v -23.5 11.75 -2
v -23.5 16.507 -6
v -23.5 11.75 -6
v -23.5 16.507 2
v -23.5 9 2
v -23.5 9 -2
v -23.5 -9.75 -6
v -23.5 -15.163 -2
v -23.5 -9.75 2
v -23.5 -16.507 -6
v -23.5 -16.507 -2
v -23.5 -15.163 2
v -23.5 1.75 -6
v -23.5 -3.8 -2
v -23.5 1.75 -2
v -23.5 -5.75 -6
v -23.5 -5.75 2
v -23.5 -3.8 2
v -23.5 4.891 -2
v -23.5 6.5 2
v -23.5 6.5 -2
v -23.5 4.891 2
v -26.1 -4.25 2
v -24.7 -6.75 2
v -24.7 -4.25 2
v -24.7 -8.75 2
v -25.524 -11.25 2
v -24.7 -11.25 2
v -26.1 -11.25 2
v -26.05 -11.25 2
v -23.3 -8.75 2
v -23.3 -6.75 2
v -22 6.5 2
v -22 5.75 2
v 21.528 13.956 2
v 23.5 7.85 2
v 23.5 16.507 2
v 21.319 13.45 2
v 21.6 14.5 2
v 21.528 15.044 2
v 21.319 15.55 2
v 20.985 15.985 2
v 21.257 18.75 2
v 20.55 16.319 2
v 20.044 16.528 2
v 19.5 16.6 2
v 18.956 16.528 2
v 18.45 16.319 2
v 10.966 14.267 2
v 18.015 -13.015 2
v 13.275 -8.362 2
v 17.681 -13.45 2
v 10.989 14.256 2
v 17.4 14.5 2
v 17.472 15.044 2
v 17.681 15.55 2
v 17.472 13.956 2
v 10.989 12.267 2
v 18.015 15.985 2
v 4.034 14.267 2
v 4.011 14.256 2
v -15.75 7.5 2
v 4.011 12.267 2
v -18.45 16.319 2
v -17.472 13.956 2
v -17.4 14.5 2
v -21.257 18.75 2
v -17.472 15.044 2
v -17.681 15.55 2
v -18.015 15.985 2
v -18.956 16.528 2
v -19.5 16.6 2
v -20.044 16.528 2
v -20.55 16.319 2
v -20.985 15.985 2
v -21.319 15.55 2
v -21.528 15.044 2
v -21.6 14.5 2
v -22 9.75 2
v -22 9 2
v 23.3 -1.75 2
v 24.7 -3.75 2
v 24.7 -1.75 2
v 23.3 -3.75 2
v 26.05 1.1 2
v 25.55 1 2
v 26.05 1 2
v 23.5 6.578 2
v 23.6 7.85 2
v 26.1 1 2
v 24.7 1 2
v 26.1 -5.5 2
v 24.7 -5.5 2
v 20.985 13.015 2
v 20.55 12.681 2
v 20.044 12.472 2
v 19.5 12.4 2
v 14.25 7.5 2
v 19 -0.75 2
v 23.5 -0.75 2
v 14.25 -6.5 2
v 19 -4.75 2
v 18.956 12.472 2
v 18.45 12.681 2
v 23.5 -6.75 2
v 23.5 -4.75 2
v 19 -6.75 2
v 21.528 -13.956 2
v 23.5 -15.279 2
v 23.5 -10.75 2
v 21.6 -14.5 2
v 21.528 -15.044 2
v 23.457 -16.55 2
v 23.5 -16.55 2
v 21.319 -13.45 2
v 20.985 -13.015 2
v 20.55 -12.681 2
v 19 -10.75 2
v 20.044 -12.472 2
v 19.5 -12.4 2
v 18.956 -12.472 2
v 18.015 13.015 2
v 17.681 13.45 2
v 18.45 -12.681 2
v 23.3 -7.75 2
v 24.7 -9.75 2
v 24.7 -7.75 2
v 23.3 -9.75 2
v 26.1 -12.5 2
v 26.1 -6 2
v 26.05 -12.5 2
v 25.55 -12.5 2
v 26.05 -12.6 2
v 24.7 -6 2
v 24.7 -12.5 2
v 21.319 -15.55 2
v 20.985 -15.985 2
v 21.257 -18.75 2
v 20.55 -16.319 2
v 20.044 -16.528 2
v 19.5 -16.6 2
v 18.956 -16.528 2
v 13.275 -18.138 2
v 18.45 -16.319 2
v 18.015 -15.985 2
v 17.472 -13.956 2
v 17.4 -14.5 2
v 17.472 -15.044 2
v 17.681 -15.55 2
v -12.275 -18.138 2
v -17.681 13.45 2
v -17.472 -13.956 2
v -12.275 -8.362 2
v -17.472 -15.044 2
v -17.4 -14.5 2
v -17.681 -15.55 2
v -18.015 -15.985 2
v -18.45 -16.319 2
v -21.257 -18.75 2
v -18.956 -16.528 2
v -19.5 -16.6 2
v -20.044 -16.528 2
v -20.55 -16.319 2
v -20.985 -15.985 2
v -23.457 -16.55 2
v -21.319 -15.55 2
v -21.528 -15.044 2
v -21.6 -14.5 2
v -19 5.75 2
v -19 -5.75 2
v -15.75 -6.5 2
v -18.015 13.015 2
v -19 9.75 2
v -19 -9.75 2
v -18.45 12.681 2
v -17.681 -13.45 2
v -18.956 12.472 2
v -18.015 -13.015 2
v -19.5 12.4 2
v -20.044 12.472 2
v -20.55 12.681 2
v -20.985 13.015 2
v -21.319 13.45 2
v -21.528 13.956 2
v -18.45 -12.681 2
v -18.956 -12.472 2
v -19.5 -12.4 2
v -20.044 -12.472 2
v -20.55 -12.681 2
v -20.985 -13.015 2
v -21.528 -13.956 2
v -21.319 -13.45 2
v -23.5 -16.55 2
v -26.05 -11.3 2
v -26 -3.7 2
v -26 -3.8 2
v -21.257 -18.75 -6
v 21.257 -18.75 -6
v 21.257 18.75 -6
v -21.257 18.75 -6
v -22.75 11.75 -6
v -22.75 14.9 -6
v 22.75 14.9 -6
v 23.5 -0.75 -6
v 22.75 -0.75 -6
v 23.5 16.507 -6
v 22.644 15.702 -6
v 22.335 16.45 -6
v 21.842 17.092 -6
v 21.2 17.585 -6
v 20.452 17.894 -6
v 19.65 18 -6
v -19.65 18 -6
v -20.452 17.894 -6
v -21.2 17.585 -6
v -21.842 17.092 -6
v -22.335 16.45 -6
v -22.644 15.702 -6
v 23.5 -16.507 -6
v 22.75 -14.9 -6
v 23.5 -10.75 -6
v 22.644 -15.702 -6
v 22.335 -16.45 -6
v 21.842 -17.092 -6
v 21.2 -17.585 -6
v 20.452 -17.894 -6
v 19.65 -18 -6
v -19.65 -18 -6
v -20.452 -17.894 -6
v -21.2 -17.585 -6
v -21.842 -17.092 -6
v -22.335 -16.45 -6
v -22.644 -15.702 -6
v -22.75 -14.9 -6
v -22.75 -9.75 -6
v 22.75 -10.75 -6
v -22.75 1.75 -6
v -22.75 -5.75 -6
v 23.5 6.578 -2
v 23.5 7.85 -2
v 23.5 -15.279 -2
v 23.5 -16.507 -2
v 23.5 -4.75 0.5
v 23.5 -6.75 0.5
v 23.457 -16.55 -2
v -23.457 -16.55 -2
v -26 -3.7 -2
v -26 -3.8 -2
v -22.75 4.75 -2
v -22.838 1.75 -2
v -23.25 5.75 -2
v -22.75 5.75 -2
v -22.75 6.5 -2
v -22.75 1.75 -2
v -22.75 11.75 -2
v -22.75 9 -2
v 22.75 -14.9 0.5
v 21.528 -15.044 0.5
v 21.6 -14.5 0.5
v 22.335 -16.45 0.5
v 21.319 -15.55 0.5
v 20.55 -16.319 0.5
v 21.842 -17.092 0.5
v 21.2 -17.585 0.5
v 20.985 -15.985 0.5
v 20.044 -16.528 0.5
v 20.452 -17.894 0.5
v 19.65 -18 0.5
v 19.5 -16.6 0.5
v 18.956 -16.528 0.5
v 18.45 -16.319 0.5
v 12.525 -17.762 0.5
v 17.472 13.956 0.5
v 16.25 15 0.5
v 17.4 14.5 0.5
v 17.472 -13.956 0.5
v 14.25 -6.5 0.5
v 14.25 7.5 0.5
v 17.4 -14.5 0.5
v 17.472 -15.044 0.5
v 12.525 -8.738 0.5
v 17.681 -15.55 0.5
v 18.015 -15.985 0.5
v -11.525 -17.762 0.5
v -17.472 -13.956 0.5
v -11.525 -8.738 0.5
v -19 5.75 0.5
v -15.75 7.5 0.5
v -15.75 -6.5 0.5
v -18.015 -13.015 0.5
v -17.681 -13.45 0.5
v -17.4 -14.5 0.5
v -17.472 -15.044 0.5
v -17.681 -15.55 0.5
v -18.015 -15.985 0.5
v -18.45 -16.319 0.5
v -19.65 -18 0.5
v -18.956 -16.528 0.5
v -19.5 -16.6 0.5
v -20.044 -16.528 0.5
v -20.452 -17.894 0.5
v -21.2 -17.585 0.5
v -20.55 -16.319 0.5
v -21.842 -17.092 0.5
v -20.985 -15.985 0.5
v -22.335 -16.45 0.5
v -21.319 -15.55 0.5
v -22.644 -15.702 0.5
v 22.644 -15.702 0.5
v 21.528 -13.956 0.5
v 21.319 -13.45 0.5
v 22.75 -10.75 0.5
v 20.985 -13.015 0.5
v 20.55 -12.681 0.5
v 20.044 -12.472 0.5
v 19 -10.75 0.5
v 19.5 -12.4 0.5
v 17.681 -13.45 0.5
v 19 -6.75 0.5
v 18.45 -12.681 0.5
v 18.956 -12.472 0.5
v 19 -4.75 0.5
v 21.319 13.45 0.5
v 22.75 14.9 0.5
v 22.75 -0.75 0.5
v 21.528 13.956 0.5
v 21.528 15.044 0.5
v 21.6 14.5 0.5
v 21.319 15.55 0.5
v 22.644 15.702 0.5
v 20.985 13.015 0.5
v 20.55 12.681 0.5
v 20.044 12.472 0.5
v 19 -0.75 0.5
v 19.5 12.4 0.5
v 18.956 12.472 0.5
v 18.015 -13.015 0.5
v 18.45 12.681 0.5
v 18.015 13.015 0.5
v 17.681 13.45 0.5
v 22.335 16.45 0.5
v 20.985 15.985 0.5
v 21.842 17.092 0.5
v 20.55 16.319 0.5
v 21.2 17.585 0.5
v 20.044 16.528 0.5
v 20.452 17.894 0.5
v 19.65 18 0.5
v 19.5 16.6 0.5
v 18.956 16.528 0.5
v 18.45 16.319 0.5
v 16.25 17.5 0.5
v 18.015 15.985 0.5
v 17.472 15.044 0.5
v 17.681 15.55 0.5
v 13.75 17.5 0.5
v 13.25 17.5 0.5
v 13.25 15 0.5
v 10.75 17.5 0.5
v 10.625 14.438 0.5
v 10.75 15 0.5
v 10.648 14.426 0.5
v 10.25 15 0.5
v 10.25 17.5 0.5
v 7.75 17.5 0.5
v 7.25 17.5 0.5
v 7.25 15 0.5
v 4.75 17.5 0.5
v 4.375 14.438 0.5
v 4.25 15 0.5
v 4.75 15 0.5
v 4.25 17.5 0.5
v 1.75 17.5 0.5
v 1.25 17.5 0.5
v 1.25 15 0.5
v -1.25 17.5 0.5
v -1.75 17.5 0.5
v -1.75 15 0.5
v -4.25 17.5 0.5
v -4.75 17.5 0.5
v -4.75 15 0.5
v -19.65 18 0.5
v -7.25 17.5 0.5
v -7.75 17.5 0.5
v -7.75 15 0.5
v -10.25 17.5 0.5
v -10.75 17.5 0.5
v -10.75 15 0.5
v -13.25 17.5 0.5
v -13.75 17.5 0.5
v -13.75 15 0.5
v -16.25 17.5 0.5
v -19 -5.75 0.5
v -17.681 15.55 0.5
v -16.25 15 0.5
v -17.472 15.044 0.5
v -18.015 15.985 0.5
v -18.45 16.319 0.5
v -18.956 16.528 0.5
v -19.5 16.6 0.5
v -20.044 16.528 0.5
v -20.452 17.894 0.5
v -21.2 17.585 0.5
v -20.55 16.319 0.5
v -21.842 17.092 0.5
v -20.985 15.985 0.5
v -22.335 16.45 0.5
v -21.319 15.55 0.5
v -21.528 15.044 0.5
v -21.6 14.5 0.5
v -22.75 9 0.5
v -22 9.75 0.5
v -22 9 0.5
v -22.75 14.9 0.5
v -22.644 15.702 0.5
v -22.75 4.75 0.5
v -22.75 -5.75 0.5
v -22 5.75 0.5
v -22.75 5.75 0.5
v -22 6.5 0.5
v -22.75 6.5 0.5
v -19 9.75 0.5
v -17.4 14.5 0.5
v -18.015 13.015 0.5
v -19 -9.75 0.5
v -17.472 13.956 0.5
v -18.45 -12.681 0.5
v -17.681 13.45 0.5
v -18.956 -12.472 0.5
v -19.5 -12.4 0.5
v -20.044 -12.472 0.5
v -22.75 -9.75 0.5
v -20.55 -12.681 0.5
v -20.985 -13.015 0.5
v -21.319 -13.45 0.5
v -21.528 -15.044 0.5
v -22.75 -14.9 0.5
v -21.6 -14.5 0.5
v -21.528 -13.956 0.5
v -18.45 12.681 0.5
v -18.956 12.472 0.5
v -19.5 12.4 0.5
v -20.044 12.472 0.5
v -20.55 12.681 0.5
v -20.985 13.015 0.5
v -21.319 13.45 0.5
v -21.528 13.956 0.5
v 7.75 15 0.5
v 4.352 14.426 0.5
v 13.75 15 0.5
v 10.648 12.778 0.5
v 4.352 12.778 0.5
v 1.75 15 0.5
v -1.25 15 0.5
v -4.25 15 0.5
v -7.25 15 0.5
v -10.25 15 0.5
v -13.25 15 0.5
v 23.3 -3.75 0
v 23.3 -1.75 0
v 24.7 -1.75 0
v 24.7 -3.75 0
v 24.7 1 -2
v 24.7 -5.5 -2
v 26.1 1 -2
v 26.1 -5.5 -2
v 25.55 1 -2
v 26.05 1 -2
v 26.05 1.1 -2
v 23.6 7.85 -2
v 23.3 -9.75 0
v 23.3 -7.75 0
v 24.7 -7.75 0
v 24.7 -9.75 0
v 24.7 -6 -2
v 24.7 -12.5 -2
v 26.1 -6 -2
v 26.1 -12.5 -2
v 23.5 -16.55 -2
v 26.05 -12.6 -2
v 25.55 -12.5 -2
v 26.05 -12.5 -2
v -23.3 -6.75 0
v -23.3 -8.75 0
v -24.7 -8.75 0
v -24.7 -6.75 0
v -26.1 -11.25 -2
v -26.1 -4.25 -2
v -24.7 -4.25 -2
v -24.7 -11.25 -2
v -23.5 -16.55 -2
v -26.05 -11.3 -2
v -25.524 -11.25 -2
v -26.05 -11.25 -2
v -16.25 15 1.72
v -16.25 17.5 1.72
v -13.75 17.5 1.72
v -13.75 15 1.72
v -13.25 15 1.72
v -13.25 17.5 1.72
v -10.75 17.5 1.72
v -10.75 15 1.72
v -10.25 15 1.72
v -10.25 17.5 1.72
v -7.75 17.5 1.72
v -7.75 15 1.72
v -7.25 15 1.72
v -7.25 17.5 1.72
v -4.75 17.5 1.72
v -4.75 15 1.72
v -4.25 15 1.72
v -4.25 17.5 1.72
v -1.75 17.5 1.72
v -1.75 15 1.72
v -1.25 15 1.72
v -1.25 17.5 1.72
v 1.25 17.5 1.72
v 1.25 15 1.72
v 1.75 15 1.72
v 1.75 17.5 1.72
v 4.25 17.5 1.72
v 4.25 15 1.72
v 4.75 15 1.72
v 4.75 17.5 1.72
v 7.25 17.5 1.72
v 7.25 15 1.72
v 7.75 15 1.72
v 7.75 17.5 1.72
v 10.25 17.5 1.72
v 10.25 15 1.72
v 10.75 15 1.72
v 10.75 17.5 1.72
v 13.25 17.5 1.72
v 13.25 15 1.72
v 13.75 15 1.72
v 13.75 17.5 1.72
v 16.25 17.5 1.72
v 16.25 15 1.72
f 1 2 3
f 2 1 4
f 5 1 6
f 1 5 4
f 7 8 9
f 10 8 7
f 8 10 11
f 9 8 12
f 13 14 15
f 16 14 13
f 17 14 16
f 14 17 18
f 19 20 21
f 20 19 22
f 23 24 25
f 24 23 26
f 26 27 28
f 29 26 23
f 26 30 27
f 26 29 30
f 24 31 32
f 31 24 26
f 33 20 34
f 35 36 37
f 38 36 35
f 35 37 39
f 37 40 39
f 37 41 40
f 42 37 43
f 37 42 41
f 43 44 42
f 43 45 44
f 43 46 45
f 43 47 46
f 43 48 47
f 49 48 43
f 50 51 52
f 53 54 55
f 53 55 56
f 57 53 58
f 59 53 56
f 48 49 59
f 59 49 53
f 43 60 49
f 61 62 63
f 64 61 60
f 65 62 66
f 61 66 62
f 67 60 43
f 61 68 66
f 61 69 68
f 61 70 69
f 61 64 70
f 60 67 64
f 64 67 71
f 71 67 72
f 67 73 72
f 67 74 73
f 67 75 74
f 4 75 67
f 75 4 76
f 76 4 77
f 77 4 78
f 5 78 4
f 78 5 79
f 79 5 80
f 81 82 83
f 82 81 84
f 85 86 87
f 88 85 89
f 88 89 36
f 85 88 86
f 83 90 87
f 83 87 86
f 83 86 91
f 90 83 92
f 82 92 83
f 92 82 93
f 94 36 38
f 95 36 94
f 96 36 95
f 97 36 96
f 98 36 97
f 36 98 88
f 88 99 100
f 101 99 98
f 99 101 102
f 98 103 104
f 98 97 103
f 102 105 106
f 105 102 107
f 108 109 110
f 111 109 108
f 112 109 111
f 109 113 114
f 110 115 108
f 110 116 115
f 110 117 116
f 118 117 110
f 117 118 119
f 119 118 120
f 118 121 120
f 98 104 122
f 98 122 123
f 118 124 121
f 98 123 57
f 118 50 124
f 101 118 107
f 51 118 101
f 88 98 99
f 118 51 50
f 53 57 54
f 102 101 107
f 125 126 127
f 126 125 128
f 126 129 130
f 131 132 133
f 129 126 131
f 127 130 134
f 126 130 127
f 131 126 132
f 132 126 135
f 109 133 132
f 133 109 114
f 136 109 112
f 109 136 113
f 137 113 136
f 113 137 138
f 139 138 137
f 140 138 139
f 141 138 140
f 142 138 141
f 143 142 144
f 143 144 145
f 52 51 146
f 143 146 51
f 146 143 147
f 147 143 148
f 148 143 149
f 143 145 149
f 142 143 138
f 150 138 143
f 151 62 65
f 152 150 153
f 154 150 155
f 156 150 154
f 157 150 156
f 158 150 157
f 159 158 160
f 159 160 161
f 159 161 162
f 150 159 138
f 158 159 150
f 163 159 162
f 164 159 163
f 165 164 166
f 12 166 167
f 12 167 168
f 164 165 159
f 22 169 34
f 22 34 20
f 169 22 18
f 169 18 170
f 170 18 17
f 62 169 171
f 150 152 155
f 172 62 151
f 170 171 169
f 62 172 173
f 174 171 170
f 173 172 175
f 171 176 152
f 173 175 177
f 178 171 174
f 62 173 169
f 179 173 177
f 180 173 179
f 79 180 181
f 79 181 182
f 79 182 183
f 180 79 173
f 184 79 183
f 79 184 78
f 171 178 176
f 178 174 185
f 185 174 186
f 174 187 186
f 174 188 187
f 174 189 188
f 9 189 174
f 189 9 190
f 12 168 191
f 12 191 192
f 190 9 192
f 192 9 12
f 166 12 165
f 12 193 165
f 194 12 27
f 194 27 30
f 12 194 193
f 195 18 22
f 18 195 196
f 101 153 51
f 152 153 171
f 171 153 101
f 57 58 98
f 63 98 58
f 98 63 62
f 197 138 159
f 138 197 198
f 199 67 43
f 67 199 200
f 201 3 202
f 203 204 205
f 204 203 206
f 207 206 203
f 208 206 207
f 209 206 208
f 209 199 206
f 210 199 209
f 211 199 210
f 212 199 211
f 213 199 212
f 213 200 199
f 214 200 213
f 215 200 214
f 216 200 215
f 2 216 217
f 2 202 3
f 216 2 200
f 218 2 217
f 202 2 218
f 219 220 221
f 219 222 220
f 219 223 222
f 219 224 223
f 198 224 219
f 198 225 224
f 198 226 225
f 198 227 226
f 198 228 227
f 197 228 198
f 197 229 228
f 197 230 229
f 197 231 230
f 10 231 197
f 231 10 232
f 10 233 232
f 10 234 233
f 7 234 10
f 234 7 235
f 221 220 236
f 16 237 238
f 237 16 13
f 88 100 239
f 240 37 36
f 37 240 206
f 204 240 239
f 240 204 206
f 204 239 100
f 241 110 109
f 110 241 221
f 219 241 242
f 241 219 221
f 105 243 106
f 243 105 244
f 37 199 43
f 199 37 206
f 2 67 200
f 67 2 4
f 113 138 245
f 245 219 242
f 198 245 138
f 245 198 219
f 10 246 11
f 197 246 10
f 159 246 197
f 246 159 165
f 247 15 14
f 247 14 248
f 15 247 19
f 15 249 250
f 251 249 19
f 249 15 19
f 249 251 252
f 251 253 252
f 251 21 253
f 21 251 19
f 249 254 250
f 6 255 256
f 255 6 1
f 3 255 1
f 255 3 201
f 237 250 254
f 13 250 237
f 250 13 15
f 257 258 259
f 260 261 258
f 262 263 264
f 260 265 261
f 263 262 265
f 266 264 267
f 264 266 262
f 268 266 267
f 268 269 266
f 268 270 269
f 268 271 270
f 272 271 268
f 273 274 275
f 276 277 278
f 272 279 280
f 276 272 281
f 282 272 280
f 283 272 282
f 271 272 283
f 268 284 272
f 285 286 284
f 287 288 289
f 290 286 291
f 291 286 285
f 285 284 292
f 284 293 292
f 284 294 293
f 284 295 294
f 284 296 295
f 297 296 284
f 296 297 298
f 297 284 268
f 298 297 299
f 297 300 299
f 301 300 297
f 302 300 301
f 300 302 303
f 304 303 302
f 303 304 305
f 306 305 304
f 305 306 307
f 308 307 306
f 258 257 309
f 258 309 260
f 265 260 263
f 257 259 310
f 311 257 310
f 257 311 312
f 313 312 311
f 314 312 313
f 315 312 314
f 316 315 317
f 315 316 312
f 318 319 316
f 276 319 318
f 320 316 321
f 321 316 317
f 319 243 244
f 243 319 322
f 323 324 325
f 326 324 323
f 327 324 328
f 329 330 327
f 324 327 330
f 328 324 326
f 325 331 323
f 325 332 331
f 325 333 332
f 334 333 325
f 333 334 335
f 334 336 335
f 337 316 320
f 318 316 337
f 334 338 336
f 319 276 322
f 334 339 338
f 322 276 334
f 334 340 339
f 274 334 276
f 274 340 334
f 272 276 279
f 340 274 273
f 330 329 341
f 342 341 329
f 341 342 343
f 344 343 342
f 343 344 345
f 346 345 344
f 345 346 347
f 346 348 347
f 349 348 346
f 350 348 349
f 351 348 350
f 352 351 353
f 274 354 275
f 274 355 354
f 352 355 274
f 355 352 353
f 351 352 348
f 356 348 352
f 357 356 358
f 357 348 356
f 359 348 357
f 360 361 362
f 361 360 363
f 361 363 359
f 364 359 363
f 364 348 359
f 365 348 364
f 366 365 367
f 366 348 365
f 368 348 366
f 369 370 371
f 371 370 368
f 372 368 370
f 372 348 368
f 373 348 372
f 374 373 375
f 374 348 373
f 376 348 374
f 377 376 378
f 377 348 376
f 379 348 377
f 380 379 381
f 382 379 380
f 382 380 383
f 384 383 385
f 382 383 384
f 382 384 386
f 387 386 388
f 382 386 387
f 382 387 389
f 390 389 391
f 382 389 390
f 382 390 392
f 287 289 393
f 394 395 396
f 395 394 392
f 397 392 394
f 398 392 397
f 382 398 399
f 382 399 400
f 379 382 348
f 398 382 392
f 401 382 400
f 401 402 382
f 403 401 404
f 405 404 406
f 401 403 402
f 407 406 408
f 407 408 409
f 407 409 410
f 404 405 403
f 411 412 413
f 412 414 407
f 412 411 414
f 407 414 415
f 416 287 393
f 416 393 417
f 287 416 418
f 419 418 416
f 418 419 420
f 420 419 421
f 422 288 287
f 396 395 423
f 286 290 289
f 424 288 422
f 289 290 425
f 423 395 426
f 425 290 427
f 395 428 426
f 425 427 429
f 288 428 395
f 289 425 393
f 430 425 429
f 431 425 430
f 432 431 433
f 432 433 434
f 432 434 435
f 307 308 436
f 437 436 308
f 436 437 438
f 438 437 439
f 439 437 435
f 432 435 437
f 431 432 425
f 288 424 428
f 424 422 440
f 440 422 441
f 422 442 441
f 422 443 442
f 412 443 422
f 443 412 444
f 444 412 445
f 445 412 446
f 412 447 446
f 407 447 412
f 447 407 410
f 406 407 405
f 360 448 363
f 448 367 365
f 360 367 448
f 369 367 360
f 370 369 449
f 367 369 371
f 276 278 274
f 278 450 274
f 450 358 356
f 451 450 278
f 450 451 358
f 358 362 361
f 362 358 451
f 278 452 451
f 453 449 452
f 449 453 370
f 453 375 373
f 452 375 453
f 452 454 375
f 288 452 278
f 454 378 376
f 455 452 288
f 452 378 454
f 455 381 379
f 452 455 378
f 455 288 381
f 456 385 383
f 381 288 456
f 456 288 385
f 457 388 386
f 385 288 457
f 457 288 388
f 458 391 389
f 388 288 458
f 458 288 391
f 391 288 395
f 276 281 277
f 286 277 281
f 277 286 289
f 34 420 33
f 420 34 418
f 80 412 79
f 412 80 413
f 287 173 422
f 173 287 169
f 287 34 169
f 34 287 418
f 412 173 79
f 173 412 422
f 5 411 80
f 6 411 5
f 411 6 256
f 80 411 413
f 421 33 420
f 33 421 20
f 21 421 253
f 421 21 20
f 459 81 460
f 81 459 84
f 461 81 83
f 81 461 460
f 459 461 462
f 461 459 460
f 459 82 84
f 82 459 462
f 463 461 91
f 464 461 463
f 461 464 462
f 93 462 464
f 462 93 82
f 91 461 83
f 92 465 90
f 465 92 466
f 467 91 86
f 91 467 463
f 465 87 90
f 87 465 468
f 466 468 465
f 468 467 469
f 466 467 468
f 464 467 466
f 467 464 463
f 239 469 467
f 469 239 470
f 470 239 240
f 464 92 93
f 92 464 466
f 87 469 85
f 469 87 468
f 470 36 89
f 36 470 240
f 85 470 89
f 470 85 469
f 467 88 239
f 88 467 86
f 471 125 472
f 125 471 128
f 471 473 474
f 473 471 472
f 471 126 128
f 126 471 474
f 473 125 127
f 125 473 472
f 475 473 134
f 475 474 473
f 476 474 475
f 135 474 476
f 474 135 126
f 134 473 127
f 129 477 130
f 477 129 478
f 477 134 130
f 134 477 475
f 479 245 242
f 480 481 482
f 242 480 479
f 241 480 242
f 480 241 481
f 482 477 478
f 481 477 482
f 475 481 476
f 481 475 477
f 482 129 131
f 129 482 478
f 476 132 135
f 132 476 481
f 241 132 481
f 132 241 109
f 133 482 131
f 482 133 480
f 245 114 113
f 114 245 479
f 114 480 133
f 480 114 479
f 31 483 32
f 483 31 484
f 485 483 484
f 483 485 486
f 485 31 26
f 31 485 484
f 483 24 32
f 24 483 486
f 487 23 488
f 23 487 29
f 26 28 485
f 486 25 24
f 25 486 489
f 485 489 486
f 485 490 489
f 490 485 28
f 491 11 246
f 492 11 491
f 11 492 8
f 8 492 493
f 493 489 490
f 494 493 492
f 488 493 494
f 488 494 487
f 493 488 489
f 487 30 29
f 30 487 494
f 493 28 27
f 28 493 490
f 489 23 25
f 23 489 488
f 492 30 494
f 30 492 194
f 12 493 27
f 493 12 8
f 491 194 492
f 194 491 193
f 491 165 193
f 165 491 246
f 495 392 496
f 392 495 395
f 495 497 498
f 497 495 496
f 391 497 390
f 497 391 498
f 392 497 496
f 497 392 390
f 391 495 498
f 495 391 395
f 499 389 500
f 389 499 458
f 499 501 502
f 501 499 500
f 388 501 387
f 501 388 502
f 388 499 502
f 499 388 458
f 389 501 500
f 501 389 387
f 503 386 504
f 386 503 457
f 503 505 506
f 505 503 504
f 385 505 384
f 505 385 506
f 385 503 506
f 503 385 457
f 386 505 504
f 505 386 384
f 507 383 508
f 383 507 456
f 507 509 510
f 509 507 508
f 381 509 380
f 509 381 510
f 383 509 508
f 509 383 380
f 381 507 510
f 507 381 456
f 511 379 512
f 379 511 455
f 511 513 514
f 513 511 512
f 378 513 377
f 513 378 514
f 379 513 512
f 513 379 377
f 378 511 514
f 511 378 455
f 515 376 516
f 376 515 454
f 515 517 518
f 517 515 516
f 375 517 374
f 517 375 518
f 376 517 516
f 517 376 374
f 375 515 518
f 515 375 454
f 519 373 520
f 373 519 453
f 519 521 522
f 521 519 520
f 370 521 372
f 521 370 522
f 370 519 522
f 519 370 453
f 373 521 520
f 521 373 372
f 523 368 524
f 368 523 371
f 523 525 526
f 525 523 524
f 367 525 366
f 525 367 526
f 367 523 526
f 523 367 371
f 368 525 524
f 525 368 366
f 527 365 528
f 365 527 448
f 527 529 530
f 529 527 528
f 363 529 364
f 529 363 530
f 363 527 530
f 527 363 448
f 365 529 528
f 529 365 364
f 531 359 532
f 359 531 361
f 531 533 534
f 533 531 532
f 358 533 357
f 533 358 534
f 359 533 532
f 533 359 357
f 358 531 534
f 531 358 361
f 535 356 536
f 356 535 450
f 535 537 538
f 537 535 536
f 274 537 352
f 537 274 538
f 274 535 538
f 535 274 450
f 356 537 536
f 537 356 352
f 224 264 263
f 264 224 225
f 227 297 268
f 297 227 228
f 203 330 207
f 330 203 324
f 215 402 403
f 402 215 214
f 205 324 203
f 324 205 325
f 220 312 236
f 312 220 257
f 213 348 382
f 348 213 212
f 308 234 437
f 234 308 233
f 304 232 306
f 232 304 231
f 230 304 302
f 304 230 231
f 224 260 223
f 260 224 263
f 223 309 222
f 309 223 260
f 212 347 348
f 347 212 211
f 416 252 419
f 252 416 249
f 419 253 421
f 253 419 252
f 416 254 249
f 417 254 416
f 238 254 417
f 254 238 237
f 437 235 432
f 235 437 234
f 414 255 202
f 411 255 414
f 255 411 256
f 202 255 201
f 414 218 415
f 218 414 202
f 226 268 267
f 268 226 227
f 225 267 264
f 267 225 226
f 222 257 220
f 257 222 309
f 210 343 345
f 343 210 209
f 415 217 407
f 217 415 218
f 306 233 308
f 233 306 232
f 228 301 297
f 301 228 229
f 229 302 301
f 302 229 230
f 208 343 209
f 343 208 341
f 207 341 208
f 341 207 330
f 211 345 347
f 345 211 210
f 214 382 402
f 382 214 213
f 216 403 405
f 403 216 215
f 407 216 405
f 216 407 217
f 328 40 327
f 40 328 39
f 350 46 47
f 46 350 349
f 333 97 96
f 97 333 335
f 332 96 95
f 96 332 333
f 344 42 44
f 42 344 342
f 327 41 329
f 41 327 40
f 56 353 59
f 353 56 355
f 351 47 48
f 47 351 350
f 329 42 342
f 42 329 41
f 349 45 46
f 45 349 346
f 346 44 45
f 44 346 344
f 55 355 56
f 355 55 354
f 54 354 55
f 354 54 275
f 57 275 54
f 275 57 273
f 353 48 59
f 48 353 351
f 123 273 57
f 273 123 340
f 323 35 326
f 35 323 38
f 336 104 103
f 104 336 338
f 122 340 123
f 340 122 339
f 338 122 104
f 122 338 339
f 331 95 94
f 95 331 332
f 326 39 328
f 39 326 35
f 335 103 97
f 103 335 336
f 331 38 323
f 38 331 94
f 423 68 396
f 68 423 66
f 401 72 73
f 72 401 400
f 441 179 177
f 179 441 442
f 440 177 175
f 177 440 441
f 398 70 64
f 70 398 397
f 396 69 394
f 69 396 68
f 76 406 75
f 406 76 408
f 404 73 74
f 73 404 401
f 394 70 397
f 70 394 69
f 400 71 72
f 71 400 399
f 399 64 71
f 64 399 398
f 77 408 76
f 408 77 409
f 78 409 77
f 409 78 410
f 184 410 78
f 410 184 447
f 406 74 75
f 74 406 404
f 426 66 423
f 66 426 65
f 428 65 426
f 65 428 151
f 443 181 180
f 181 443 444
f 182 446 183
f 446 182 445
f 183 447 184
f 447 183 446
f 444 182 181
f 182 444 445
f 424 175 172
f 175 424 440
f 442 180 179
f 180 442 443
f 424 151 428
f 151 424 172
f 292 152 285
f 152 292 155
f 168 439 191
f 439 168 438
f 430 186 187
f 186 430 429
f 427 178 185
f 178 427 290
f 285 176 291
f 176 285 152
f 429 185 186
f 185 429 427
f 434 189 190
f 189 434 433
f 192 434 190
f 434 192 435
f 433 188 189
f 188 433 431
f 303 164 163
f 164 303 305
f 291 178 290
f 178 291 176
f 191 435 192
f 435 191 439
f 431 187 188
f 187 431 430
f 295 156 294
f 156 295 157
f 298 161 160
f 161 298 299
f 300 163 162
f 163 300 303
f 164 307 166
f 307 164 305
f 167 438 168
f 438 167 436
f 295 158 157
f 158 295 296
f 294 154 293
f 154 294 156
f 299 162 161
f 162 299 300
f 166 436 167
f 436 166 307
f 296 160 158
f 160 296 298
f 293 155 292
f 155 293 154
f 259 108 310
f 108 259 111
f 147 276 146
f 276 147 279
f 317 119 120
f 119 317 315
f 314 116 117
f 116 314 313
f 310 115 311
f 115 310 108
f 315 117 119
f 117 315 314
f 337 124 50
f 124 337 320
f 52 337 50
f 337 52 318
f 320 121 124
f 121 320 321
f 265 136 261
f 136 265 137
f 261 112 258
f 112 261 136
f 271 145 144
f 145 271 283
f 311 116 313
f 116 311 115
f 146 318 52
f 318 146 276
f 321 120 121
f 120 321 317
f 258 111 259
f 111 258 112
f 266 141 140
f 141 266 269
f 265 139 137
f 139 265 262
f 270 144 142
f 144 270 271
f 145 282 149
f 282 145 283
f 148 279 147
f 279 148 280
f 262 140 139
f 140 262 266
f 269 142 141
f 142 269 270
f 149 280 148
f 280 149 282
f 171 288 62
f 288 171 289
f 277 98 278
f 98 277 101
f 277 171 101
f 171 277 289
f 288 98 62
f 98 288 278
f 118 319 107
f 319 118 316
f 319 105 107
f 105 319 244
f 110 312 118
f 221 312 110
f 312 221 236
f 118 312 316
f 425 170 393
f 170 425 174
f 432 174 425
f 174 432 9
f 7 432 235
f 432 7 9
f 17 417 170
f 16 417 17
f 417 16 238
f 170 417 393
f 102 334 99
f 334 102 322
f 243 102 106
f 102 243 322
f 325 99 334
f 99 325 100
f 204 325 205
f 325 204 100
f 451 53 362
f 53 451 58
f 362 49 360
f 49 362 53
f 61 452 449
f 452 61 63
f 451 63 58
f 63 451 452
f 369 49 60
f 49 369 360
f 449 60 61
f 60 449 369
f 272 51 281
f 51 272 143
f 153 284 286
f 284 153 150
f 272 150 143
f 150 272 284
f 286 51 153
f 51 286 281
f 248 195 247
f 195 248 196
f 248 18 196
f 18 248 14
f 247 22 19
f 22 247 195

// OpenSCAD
/*
          
          A simple cover for CARD10-badge:
          ================================
        * reduces surface complexity and covers space in between PCB's in order to keep dirt out
        * left/right/select buttons become much more usable as they get a bigger surface
        * on-off button is left as it is in order to avoid accidental pushing
        * diffuses light from the LED's which are mounted on top
        * the cover can be clipped onto the badge - there are no tools required to change the cover
        * the model has no overhangs, thus it is very easy to print
        
          Printing instructions:
          ======================
        * print upside down!
        * adjust value for "ledDiffusionThickness" so that the LED diffusor is only one layer high
        * adjust the value for "extra" in order to achieve a tight fit around the Harmonic board
        * I printed mine with .05mm layer height out of white PLA on an Ultimaker 2 with 0.4mm extruder
  
        --------------------------------------------------------------------------------
          "THE TSCHUNK-WARE LICENSE" (Revision 23):
          Niklas Roy wrote this file. As long as you retain this notice you
          can do whatever you want with this stuff. If we meet some day, and you think
          this stuff is worth it, you can buy me a tschunk in return
        --------------------------------------------------------------------------------
        
          Modeled with OpenSCAD Version 2015.03-2
   
*/

ledDiffusionThickness=.28;  // thickness of diffusion layer for leds
extra=.25;                  // extra space around board for manufacturing imperfections

corner=3.1;                 // corner radius
width=45;                   // width of harmonic board
height=35.5;                // height of harmonic board
depth=1;                    // thickness of board
screwHead=4.2;              // diameter of screws

difference(){
    // outer shell
    difference(){
        hull(){ // main body
            translate([0,0,1]){
                cube([width+2,height+2,2],center=true);
            }
            translate([0,0,-5]){
                cube([width+2,height+2,2],center=true);
            }
        }
        // chopped off corners
        translate([width/2+2,height/2+2,1]){
            rotate([0,0,45]){
                cube([6,10,15],center=true);
            }
        }
        translate([-width/2-2,height/2+2,1]){
            rotate([0,0,-45]){
                cube([6,10,15],center=true);
            }
        }
        translate([width/2+2,-height/2-2,1]){
            rotate([0,0,-45]){
                cube([6,10,15],center=true);
            }
        }
        translate([-width/2-2,-height/2-2,1]){
            rotate([0,0,45]){
                cube([6,10,15],center=true);
            }
        }
        //usb-c cutout
        translate([-15,height/2-11,-5]){
                cube([20,10,6],center=true);
        }
        
        //cutout between right and select button
        translate([15,-5,-3]){
                cube([20,8,7],center=true);
        }
        
    }
    union(){
        // harmonic board basic shape
        hull(){
            translate([width/2-corner+extra,height/2-corner+extra,0]){
                cylinder($fn=24,r=corner,h=depth,center=true); 
            }
            translate([-width/2+corner-extra,height/2-corner+extra,0]){
                cylinder($fn=24,r=corner,h=depth,center=true); 
            }
            translate([-width/2+corner-extra,-height/2+corner-extra,0]){
                cylinder($fn=24,r=corner,h=depth,center=true); 
            }
            translate([width/2-corner+extra,-height/2+corner-extra,0]){
                cylinder($fn=24,r=corner,h=depth,center=true); 
            }
            translate([0,0,-10]){ // lowered copy of the board
                translate([width/2-corner+extra,height/2-corner+extra,0]){
                    cylinder($fn=24,r=corner,h=depth,center=true); 
                }
                translate([-width/2+corner-extra,height/2-corner+extra,0]){
                    cylinder($fn=24,r=corner,h=depth,center=true); 
                }
                translate([-width/2+corner-extra,-height/2+corner-extra,0]){
                    cylinder($fn=24,r=corner,h=depth,center=true); 
                }
                translate([width/2-corner+extra,-height/2+corner-extra,0]){
                    cylinder($fn=24,r=corner,h=depth,center=true); 
                }
            }
        }
        // screws
        translate([width/2-3,height/2-3.25,0]){
            cylinder($fn=24,d=screwHead,h=2.5,center=false); 
        }
        translate([-width/2+3,height/2-3.25,0]){
            cylinder($fn=24,d=screwHead,h=2.5,center=false); 
        }
        translate([-width/2+3,-height/2+3.25,0]){
            cylinder($fn=24,d=screwHead,h=2.5,center=false); 
        }
        translate([width/2-3,-height/2+3.25,0]){
            cylinder($fn=24,d=screwHead,h=2.5,center=false); 
        }

        // leds
        translate([0,height/2-1.5,1.2-ledDiffusionThickness]){
            //cube([32,3,1.6],center=true);
            for(led = [-15 : 3 : 15]){
                translate([led,0,0]){
                    cube([2.5,2.5,1.6],center=true);
                }
            }
            
        }

        // display
        translate([-0.75,.5,1.5]){
            cube([30,14,3],center=true);
        }

        // buttons
        translate([-width/2+2,height/2-10,1.5]){
            cube([3,4,16],center=true);//on-off
            translate([-2,0,0]){
                cube([4,2.5,16],center=true);//
            }
        }
        translate([width/2-1,-height/2+9,1.5]){
            cube([5,4,16],center=true);//right
        }
        translate([-width/2+1,-height/2+10,1.5]){
            cube([5,4,16],center=true);//left
        }
        translate([width/2-1,-height/2+15,1.5]){
            cube([5,4,16],center=true);//select
        }

        //ir
        hull(){
            translate([width/2-15,height/2-4,-0.1]){
                cube([6,1.5,0.1],center=true);//select
            }
            translate([width/2-15,height/2-4.5,2.1]){
                cube([7,2,0.1],center=true);//select
            }
        }
        //ecg
        hull()
        {
            translate([0.5,-height/2+4.5,2.5]){
                cube([26,10,.1],center=true);//select
            }
            translate([0.5,-height/2+4.5,.5]){
                cube([24,9,.1],center=true);//select
            }
        }
    }
}

// button cover

translate([width/2+2,-height/2+15,1]){
    cube([2.4,2,2],center=true);          //select
    translate([0.9,.5,-1]){
        cube([1.4,6.5,4],center=true);
    }
    hull(){                               // spring
        translate([1.3,3.8,-1]){
            cube([.5,.1,4],center=true);
        }
        translate([-1,10.1,-1]){
            cube([.2,1,4],center=true);
        }
    }
}

translate([width/2+2,-height/2+9,1]){
    cube([2.4,2,2],center=true);          //right
    translate([0.9,-.5,-1]){
        cube([1.4,6.5,4],center=true);
    }
    hull(){                               // spring
        translate([1.3,-3.8,-1]){
            cube([.5,.1,4],center=true);
        }
        translate([-1.1,-7.3,-1]){
            cube([.2,1,4],center=true);
        }
    }
}

translate([-width/2-2,-height/2+10,1]){
    cube([2.4,2,2],center=true);          //left
    translate([-0.9,0,-1]){
        cube([1.4,7,4],center=true);
    }
    hull(){                               // spring
        translate([-1.3,-3.5,-1]){
            cube([.5,.1,4],center=true);
        }
        translate([1.1,-8.3,-1]){
            cube([.2,1,4],center=true);
        }
    }
}

translate([-width/2-2,height/2-24,1]){ // triangle above left button
    hull(){
        translate([0,2.5,-1]){
            cube([3,.1,4],center=true);
        }
        translate([1.5,11.5,-1]){
            cube([.5,1,4],center=true);
        }
    }
}
